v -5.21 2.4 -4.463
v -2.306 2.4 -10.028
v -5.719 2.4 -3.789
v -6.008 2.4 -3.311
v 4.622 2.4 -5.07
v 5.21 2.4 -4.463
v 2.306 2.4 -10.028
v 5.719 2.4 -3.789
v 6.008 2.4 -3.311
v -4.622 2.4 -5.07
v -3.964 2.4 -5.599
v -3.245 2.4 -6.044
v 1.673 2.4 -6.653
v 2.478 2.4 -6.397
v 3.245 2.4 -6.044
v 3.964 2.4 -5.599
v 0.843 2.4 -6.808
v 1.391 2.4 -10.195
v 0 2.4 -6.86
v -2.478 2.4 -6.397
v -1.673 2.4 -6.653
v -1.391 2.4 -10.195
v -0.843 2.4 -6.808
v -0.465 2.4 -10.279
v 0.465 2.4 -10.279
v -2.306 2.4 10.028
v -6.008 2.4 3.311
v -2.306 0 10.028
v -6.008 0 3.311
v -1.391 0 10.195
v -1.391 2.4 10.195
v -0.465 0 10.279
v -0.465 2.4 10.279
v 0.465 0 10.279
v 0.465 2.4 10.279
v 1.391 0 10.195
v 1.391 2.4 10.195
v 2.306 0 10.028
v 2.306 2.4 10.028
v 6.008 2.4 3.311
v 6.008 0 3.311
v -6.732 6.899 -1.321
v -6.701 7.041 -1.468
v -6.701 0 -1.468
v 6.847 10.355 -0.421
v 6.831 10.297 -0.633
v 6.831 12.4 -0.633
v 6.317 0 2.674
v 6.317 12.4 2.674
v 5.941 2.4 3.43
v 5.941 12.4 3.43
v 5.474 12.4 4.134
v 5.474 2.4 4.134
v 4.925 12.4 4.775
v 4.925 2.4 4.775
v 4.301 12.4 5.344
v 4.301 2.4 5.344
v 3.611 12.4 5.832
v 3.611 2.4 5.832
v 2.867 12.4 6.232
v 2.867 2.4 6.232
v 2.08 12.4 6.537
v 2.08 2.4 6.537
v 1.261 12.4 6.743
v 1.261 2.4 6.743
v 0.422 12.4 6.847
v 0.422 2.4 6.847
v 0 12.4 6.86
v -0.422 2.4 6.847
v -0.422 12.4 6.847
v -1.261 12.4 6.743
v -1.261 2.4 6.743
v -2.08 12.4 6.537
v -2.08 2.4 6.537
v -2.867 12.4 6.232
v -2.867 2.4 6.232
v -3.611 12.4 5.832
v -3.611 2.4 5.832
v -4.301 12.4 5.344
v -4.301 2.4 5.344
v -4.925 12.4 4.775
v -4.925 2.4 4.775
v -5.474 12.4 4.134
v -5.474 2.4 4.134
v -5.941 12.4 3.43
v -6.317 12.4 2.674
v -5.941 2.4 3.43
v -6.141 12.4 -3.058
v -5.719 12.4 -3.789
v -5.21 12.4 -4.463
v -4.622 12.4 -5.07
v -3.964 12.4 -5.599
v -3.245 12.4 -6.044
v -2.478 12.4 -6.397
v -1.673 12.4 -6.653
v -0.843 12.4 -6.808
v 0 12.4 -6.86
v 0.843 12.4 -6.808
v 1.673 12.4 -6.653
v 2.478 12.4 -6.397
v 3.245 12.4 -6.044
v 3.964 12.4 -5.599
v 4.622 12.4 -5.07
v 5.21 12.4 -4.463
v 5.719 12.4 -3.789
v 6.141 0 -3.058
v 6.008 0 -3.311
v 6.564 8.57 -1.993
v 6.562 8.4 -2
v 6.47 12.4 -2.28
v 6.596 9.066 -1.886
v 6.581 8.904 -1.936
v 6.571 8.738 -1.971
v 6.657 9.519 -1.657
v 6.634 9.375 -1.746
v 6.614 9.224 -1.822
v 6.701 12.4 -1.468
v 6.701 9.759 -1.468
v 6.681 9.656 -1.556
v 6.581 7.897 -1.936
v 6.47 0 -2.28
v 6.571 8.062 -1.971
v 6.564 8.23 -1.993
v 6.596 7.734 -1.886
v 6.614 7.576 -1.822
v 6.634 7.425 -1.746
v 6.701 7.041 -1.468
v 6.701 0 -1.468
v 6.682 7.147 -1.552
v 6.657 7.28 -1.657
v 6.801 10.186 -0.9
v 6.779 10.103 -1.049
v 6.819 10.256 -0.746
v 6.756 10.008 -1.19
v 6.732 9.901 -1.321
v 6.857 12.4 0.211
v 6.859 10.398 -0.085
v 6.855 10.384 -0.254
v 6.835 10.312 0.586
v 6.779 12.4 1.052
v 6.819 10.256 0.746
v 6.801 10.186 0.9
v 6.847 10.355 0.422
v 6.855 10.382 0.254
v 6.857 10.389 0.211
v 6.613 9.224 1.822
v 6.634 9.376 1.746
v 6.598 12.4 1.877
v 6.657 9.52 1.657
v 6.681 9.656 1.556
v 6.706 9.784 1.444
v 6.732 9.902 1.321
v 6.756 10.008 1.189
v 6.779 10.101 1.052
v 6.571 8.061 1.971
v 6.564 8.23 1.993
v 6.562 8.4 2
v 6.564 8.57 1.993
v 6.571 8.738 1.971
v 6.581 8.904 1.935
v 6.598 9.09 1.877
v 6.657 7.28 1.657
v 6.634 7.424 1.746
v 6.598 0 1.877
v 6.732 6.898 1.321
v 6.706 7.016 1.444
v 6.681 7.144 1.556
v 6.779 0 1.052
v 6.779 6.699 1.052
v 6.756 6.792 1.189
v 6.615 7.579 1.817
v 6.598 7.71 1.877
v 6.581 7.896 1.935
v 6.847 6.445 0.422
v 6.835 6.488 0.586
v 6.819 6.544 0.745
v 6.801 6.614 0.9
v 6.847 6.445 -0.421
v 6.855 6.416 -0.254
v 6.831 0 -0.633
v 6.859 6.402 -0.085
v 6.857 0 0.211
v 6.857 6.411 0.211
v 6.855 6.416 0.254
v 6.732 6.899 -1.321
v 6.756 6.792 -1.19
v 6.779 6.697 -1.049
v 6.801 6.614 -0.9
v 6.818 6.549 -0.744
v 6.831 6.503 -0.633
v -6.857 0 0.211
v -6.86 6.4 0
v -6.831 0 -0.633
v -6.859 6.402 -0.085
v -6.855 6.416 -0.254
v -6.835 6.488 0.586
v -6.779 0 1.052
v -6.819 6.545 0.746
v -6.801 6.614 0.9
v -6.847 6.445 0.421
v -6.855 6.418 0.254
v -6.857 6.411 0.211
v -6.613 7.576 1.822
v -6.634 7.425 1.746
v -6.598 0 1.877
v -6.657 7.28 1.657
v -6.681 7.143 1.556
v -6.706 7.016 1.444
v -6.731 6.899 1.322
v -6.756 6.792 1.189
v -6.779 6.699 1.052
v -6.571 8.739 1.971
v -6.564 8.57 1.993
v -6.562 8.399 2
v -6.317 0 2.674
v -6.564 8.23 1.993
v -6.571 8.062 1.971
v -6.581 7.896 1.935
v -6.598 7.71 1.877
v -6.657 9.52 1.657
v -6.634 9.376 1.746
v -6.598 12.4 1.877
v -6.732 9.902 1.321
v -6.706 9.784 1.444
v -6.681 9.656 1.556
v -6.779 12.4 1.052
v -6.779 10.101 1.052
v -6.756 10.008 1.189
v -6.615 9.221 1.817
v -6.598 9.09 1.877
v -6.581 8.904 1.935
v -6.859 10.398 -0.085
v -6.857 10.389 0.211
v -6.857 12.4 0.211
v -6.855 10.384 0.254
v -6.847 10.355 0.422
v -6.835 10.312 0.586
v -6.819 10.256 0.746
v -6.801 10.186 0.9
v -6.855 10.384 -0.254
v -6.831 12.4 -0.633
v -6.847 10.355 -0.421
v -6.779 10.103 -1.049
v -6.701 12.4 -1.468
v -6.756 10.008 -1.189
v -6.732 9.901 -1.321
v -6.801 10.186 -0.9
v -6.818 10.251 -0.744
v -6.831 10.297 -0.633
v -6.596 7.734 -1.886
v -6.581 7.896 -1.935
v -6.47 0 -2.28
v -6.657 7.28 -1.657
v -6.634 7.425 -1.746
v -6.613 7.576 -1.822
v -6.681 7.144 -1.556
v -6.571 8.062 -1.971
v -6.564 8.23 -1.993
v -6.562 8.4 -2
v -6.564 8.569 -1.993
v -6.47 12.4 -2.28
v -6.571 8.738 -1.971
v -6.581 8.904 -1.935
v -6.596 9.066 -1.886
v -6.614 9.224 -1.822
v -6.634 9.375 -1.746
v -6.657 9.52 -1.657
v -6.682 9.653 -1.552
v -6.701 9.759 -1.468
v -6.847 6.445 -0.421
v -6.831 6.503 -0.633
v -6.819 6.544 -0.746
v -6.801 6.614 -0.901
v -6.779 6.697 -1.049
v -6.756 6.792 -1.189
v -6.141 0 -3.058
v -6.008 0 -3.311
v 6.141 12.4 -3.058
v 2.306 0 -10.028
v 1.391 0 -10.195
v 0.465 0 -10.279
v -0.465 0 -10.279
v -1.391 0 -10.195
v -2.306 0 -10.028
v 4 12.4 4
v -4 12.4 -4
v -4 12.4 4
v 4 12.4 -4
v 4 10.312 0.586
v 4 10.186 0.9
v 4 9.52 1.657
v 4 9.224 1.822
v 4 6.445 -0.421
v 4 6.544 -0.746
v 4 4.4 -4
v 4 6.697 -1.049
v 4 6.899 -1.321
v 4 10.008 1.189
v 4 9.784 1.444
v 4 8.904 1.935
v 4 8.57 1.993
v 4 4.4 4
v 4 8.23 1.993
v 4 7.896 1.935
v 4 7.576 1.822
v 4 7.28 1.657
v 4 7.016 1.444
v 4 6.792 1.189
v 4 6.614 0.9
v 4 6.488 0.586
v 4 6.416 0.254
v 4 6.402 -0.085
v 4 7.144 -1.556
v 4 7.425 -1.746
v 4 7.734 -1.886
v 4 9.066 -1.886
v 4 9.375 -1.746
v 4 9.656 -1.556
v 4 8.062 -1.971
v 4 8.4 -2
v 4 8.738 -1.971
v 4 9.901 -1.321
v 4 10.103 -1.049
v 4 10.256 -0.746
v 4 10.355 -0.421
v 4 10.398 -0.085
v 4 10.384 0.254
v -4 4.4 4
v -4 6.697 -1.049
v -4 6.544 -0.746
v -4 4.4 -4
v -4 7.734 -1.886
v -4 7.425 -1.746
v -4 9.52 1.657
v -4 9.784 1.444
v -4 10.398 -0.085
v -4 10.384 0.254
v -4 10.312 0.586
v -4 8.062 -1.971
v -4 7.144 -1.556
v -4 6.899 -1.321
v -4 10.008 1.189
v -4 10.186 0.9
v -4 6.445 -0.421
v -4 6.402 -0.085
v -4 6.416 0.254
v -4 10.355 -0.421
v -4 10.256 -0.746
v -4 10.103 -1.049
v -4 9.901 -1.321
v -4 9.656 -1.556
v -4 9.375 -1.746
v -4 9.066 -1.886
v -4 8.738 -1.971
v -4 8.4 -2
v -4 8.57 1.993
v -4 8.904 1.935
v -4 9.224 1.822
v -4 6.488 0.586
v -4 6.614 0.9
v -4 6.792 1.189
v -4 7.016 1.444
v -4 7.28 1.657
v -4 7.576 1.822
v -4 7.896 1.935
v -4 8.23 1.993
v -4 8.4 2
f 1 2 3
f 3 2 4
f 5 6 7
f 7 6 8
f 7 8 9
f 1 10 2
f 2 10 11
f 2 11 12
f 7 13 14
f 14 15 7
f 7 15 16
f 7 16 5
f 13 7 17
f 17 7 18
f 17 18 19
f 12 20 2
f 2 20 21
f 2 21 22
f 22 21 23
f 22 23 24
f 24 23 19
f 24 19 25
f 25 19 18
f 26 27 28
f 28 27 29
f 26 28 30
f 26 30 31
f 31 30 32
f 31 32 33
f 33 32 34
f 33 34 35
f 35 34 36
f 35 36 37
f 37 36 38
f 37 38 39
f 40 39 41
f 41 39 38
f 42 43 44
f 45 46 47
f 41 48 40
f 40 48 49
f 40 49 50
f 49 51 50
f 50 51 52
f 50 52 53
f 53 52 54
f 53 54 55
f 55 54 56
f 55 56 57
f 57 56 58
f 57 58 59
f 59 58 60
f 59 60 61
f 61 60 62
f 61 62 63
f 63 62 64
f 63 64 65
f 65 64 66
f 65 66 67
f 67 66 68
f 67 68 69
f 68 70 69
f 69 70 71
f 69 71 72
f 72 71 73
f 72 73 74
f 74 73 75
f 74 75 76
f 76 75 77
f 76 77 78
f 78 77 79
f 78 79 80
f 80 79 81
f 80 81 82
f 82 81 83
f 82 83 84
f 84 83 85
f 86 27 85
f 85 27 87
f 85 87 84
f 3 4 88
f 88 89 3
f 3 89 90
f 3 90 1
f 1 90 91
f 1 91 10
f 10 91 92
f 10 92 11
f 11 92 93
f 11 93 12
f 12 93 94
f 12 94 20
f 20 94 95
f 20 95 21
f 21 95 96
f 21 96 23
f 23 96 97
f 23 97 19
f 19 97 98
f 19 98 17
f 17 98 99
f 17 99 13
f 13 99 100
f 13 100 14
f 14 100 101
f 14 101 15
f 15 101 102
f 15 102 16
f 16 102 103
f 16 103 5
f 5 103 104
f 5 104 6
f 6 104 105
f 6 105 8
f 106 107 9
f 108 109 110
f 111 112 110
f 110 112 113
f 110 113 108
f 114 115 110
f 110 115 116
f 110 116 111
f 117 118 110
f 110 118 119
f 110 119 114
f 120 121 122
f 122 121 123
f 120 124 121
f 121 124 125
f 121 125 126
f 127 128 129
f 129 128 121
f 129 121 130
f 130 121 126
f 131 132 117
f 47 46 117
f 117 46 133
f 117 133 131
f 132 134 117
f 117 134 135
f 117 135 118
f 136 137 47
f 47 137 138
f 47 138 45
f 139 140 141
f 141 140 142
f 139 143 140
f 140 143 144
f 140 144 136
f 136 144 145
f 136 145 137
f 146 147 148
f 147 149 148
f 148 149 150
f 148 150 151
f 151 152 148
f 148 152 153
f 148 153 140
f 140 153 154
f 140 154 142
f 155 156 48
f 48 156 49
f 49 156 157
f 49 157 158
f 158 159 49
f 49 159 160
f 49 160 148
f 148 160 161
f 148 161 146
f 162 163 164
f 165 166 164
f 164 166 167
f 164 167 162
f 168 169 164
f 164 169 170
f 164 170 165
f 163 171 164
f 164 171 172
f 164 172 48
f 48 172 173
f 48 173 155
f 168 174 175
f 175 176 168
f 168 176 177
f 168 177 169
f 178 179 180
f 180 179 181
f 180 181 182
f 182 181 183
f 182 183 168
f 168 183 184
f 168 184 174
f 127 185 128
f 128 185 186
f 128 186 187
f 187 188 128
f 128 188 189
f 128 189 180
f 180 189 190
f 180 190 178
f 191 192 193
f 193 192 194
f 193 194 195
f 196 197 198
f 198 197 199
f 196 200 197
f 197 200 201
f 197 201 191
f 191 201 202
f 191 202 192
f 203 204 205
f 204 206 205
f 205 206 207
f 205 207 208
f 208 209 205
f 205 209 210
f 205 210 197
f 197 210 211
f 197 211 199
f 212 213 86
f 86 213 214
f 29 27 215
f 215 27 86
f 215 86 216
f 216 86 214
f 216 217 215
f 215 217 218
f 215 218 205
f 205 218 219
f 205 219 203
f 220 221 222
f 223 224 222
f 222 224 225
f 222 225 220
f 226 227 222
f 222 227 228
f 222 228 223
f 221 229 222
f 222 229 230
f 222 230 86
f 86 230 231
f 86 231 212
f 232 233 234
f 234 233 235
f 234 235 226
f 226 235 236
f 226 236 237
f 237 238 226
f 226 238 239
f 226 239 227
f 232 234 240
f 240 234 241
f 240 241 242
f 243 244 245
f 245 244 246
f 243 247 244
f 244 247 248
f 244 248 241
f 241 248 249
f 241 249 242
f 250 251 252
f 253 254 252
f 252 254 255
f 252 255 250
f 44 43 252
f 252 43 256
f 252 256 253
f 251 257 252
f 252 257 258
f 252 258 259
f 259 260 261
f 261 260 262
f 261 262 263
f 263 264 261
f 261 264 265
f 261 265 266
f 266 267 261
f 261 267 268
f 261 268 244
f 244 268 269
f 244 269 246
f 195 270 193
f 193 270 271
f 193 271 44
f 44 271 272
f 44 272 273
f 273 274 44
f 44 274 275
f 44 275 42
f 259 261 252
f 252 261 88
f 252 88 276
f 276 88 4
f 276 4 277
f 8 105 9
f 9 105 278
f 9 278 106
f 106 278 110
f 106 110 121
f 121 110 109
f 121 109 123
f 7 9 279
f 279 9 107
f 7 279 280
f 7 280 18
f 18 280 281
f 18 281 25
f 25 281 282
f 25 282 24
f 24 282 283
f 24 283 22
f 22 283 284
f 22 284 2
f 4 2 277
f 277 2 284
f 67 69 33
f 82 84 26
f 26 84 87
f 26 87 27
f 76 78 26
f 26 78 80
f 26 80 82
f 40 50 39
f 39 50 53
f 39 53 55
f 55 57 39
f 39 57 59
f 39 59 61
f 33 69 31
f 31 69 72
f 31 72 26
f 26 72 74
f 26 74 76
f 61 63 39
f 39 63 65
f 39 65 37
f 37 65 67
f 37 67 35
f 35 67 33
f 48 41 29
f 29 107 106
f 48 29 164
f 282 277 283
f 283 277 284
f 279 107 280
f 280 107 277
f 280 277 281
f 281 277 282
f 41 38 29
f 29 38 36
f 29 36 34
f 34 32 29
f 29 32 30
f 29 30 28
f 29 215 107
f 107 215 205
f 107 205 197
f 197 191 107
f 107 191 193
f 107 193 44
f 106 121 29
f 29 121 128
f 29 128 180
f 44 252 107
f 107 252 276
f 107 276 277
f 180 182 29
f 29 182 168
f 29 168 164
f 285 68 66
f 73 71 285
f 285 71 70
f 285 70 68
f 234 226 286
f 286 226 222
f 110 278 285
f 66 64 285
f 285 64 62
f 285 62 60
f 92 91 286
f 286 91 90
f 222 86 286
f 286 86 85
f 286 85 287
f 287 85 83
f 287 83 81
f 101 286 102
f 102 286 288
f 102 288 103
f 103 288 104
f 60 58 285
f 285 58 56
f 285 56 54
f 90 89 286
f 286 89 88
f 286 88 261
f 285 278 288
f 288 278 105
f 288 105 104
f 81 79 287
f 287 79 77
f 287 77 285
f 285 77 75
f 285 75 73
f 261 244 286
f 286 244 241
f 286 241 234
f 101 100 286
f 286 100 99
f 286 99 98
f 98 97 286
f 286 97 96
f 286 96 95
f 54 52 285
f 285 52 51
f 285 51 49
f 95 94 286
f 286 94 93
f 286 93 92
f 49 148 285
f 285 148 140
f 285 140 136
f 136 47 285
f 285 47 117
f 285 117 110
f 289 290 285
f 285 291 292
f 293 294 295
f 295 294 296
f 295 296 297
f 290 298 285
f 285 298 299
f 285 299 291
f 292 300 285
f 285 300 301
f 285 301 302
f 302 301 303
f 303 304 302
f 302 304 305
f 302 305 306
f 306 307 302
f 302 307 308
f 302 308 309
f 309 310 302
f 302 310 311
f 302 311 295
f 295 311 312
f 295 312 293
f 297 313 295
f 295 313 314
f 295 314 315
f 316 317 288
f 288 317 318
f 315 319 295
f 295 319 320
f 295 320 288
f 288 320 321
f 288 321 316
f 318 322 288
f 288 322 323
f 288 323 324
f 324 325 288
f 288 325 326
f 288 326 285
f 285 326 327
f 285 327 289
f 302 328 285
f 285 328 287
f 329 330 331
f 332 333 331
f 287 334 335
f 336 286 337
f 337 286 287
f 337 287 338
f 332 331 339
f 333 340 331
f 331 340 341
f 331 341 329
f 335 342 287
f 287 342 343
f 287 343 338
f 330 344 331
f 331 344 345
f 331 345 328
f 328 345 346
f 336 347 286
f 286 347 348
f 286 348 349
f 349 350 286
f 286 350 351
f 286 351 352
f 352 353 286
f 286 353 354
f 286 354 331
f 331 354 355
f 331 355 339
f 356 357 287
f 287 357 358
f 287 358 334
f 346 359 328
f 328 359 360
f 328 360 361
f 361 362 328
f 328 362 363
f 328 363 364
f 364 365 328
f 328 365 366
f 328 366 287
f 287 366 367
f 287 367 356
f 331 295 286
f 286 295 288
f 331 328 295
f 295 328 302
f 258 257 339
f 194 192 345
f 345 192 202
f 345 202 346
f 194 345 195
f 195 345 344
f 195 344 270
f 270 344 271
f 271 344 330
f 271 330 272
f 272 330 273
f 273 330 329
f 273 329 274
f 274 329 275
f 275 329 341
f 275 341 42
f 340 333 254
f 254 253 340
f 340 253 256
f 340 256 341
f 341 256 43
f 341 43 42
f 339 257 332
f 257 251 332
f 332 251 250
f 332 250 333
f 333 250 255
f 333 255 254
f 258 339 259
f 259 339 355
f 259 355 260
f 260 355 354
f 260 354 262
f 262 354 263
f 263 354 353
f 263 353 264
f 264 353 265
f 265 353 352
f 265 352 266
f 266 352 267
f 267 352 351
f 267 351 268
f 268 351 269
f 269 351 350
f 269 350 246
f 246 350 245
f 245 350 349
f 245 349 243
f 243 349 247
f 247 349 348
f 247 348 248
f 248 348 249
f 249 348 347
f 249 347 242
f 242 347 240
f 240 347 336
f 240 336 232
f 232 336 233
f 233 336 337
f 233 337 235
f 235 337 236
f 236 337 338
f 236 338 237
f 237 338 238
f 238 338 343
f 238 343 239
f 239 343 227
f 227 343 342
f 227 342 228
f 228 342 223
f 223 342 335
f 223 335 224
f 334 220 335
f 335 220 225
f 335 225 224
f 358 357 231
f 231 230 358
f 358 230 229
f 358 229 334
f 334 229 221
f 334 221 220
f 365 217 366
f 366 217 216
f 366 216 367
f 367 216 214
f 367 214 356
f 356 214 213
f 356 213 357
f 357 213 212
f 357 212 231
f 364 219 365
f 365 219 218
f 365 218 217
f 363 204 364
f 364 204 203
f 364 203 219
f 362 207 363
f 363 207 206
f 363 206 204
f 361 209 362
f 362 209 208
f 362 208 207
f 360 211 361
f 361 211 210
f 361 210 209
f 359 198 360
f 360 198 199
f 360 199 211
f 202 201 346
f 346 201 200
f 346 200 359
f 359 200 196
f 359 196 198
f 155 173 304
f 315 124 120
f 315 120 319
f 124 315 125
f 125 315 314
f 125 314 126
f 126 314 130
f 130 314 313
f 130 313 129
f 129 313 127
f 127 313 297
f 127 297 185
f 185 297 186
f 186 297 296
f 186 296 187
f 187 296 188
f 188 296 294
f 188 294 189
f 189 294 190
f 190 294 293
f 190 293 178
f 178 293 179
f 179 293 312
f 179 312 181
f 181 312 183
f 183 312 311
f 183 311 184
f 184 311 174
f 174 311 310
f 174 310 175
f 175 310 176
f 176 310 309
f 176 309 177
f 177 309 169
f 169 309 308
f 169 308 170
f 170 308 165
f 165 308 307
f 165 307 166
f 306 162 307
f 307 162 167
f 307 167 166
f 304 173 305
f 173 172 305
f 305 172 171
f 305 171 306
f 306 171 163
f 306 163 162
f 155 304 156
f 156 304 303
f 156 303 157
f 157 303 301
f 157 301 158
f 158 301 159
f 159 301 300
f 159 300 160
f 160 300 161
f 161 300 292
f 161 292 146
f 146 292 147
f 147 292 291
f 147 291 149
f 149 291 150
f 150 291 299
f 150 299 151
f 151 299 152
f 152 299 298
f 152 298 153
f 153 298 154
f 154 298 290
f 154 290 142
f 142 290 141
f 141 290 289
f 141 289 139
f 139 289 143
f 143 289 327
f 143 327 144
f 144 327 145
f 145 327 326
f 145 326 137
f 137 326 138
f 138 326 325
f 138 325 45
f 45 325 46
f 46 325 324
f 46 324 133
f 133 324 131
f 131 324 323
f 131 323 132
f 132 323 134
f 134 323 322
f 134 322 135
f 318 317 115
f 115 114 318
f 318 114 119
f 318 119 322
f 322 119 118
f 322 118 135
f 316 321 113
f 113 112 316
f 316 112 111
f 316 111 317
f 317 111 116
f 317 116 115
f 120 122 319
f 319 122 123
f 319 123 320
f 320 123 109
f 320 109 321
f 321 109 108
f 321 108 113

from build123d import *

# Parameters (mm, degrees)
SALIENTE_EXTRUIR1_DEPTH    = 2.4
CROQUIS2_R                 = 6.86
SALIENTE_EXTRUIR2_DEPTH    = 10
CROQUIS3_W                 = 8
CROQUIS3_H                 = 8
CORTAR_EXTRUIR1_DEPTH      = 8
CORTAR_EXTRUIR2_DEPTH      = 20.431513065
CORTAR_EXTRUIR2_DEPTH_BACK = 20.431513065
CROQUIS5_R                 = 2


with BuildPart() as part:
    # Croquis1 → Saliente-Extruir1 (new body)
    with BuildSketch(Plane(origin=(0, 0, 0), x_dir=(1, 0, 0), z_dir=(0, 1, 0))):
        with BuildLine():
            Line((-6.008085542, 3.310967853), (-2.306310946, 10.028211696))
            ThreePointArc((-2.306310946, 10.028211696), (0, 10.29), (2.306310946, 10.028211696))
            Line((2.306310946, 10.028211696), (6.008085542, 3.310967853))
            ThreePointArc((6.008085542, 3.310967853), (6.86, 0), (6.008085542, -3.310967853))
            Line((6.008085542, -3.310967853), (2.306310946, -10.028211696))
            ThreePointArc((2.306310946, -10.028211696), (0, -10.29), (-2.306310946, -10.028211696))
            Line((-2.306310946, -10.028211696), (-6.008085542, -3.310967853))
            ThreePointArc((-6.008085542, -3.310967853), (-6.86, 0), (-6.008085542, 3.310967853))
        make_face()
    extrude(amount=SALIENTE_EXTRUIR1_DEPTH)

    # Croquis2 → Saliente-Extruir2 (add)
    with BuildSketch(Plane(origin=(0, 2.4, 0), x_dir=(1, 0, 0), z_dir=(0, 1, 0))):
        with Locations(Location((0, 0, 0), (0, 0, 28.858514896))):
            Circle(CROQUIS2_R)
    extrude(amount=SALIENTE_EXTRUIR2_DEPTH)

    # Croquis3 → Cortar-Extruir1 (cut)
    with BuildSketch(Plane(origin=(0, 12.4, 0), x_dir=(1, 0, 0), z_dir=(0, 1, 0))):
        Rectangle(CROQUIS3_W, CROQUIS3_H)
    extrude(amount=-CORTAR_EXTRUIR1_DEPTH, mode=Mode.SUBTRACT)

    # Croquis5 → Cortar-Extruir2 (cut, two sides: drawn at the far end of the back side and taken through both)
    with BuildSketch(Plane(origin=(-4, 0, 0), x_dir=(0, 0, -1), z_dir=(1, 0, 0)).offset(-CORTAR_EXTRUIR2_DEPTH_BACK)):
        with Locations(Location((0, 8.4, 0), (0, 0, 270))):
            Circle(CROQUIS5_R)
    extrude(amount=CORTAR_EXTRUIR2_DEPTH + CORTAR_EXTRUIR2_DEPTH_BACK, mode=Mode.SUBTRACT)


solid = part.part
